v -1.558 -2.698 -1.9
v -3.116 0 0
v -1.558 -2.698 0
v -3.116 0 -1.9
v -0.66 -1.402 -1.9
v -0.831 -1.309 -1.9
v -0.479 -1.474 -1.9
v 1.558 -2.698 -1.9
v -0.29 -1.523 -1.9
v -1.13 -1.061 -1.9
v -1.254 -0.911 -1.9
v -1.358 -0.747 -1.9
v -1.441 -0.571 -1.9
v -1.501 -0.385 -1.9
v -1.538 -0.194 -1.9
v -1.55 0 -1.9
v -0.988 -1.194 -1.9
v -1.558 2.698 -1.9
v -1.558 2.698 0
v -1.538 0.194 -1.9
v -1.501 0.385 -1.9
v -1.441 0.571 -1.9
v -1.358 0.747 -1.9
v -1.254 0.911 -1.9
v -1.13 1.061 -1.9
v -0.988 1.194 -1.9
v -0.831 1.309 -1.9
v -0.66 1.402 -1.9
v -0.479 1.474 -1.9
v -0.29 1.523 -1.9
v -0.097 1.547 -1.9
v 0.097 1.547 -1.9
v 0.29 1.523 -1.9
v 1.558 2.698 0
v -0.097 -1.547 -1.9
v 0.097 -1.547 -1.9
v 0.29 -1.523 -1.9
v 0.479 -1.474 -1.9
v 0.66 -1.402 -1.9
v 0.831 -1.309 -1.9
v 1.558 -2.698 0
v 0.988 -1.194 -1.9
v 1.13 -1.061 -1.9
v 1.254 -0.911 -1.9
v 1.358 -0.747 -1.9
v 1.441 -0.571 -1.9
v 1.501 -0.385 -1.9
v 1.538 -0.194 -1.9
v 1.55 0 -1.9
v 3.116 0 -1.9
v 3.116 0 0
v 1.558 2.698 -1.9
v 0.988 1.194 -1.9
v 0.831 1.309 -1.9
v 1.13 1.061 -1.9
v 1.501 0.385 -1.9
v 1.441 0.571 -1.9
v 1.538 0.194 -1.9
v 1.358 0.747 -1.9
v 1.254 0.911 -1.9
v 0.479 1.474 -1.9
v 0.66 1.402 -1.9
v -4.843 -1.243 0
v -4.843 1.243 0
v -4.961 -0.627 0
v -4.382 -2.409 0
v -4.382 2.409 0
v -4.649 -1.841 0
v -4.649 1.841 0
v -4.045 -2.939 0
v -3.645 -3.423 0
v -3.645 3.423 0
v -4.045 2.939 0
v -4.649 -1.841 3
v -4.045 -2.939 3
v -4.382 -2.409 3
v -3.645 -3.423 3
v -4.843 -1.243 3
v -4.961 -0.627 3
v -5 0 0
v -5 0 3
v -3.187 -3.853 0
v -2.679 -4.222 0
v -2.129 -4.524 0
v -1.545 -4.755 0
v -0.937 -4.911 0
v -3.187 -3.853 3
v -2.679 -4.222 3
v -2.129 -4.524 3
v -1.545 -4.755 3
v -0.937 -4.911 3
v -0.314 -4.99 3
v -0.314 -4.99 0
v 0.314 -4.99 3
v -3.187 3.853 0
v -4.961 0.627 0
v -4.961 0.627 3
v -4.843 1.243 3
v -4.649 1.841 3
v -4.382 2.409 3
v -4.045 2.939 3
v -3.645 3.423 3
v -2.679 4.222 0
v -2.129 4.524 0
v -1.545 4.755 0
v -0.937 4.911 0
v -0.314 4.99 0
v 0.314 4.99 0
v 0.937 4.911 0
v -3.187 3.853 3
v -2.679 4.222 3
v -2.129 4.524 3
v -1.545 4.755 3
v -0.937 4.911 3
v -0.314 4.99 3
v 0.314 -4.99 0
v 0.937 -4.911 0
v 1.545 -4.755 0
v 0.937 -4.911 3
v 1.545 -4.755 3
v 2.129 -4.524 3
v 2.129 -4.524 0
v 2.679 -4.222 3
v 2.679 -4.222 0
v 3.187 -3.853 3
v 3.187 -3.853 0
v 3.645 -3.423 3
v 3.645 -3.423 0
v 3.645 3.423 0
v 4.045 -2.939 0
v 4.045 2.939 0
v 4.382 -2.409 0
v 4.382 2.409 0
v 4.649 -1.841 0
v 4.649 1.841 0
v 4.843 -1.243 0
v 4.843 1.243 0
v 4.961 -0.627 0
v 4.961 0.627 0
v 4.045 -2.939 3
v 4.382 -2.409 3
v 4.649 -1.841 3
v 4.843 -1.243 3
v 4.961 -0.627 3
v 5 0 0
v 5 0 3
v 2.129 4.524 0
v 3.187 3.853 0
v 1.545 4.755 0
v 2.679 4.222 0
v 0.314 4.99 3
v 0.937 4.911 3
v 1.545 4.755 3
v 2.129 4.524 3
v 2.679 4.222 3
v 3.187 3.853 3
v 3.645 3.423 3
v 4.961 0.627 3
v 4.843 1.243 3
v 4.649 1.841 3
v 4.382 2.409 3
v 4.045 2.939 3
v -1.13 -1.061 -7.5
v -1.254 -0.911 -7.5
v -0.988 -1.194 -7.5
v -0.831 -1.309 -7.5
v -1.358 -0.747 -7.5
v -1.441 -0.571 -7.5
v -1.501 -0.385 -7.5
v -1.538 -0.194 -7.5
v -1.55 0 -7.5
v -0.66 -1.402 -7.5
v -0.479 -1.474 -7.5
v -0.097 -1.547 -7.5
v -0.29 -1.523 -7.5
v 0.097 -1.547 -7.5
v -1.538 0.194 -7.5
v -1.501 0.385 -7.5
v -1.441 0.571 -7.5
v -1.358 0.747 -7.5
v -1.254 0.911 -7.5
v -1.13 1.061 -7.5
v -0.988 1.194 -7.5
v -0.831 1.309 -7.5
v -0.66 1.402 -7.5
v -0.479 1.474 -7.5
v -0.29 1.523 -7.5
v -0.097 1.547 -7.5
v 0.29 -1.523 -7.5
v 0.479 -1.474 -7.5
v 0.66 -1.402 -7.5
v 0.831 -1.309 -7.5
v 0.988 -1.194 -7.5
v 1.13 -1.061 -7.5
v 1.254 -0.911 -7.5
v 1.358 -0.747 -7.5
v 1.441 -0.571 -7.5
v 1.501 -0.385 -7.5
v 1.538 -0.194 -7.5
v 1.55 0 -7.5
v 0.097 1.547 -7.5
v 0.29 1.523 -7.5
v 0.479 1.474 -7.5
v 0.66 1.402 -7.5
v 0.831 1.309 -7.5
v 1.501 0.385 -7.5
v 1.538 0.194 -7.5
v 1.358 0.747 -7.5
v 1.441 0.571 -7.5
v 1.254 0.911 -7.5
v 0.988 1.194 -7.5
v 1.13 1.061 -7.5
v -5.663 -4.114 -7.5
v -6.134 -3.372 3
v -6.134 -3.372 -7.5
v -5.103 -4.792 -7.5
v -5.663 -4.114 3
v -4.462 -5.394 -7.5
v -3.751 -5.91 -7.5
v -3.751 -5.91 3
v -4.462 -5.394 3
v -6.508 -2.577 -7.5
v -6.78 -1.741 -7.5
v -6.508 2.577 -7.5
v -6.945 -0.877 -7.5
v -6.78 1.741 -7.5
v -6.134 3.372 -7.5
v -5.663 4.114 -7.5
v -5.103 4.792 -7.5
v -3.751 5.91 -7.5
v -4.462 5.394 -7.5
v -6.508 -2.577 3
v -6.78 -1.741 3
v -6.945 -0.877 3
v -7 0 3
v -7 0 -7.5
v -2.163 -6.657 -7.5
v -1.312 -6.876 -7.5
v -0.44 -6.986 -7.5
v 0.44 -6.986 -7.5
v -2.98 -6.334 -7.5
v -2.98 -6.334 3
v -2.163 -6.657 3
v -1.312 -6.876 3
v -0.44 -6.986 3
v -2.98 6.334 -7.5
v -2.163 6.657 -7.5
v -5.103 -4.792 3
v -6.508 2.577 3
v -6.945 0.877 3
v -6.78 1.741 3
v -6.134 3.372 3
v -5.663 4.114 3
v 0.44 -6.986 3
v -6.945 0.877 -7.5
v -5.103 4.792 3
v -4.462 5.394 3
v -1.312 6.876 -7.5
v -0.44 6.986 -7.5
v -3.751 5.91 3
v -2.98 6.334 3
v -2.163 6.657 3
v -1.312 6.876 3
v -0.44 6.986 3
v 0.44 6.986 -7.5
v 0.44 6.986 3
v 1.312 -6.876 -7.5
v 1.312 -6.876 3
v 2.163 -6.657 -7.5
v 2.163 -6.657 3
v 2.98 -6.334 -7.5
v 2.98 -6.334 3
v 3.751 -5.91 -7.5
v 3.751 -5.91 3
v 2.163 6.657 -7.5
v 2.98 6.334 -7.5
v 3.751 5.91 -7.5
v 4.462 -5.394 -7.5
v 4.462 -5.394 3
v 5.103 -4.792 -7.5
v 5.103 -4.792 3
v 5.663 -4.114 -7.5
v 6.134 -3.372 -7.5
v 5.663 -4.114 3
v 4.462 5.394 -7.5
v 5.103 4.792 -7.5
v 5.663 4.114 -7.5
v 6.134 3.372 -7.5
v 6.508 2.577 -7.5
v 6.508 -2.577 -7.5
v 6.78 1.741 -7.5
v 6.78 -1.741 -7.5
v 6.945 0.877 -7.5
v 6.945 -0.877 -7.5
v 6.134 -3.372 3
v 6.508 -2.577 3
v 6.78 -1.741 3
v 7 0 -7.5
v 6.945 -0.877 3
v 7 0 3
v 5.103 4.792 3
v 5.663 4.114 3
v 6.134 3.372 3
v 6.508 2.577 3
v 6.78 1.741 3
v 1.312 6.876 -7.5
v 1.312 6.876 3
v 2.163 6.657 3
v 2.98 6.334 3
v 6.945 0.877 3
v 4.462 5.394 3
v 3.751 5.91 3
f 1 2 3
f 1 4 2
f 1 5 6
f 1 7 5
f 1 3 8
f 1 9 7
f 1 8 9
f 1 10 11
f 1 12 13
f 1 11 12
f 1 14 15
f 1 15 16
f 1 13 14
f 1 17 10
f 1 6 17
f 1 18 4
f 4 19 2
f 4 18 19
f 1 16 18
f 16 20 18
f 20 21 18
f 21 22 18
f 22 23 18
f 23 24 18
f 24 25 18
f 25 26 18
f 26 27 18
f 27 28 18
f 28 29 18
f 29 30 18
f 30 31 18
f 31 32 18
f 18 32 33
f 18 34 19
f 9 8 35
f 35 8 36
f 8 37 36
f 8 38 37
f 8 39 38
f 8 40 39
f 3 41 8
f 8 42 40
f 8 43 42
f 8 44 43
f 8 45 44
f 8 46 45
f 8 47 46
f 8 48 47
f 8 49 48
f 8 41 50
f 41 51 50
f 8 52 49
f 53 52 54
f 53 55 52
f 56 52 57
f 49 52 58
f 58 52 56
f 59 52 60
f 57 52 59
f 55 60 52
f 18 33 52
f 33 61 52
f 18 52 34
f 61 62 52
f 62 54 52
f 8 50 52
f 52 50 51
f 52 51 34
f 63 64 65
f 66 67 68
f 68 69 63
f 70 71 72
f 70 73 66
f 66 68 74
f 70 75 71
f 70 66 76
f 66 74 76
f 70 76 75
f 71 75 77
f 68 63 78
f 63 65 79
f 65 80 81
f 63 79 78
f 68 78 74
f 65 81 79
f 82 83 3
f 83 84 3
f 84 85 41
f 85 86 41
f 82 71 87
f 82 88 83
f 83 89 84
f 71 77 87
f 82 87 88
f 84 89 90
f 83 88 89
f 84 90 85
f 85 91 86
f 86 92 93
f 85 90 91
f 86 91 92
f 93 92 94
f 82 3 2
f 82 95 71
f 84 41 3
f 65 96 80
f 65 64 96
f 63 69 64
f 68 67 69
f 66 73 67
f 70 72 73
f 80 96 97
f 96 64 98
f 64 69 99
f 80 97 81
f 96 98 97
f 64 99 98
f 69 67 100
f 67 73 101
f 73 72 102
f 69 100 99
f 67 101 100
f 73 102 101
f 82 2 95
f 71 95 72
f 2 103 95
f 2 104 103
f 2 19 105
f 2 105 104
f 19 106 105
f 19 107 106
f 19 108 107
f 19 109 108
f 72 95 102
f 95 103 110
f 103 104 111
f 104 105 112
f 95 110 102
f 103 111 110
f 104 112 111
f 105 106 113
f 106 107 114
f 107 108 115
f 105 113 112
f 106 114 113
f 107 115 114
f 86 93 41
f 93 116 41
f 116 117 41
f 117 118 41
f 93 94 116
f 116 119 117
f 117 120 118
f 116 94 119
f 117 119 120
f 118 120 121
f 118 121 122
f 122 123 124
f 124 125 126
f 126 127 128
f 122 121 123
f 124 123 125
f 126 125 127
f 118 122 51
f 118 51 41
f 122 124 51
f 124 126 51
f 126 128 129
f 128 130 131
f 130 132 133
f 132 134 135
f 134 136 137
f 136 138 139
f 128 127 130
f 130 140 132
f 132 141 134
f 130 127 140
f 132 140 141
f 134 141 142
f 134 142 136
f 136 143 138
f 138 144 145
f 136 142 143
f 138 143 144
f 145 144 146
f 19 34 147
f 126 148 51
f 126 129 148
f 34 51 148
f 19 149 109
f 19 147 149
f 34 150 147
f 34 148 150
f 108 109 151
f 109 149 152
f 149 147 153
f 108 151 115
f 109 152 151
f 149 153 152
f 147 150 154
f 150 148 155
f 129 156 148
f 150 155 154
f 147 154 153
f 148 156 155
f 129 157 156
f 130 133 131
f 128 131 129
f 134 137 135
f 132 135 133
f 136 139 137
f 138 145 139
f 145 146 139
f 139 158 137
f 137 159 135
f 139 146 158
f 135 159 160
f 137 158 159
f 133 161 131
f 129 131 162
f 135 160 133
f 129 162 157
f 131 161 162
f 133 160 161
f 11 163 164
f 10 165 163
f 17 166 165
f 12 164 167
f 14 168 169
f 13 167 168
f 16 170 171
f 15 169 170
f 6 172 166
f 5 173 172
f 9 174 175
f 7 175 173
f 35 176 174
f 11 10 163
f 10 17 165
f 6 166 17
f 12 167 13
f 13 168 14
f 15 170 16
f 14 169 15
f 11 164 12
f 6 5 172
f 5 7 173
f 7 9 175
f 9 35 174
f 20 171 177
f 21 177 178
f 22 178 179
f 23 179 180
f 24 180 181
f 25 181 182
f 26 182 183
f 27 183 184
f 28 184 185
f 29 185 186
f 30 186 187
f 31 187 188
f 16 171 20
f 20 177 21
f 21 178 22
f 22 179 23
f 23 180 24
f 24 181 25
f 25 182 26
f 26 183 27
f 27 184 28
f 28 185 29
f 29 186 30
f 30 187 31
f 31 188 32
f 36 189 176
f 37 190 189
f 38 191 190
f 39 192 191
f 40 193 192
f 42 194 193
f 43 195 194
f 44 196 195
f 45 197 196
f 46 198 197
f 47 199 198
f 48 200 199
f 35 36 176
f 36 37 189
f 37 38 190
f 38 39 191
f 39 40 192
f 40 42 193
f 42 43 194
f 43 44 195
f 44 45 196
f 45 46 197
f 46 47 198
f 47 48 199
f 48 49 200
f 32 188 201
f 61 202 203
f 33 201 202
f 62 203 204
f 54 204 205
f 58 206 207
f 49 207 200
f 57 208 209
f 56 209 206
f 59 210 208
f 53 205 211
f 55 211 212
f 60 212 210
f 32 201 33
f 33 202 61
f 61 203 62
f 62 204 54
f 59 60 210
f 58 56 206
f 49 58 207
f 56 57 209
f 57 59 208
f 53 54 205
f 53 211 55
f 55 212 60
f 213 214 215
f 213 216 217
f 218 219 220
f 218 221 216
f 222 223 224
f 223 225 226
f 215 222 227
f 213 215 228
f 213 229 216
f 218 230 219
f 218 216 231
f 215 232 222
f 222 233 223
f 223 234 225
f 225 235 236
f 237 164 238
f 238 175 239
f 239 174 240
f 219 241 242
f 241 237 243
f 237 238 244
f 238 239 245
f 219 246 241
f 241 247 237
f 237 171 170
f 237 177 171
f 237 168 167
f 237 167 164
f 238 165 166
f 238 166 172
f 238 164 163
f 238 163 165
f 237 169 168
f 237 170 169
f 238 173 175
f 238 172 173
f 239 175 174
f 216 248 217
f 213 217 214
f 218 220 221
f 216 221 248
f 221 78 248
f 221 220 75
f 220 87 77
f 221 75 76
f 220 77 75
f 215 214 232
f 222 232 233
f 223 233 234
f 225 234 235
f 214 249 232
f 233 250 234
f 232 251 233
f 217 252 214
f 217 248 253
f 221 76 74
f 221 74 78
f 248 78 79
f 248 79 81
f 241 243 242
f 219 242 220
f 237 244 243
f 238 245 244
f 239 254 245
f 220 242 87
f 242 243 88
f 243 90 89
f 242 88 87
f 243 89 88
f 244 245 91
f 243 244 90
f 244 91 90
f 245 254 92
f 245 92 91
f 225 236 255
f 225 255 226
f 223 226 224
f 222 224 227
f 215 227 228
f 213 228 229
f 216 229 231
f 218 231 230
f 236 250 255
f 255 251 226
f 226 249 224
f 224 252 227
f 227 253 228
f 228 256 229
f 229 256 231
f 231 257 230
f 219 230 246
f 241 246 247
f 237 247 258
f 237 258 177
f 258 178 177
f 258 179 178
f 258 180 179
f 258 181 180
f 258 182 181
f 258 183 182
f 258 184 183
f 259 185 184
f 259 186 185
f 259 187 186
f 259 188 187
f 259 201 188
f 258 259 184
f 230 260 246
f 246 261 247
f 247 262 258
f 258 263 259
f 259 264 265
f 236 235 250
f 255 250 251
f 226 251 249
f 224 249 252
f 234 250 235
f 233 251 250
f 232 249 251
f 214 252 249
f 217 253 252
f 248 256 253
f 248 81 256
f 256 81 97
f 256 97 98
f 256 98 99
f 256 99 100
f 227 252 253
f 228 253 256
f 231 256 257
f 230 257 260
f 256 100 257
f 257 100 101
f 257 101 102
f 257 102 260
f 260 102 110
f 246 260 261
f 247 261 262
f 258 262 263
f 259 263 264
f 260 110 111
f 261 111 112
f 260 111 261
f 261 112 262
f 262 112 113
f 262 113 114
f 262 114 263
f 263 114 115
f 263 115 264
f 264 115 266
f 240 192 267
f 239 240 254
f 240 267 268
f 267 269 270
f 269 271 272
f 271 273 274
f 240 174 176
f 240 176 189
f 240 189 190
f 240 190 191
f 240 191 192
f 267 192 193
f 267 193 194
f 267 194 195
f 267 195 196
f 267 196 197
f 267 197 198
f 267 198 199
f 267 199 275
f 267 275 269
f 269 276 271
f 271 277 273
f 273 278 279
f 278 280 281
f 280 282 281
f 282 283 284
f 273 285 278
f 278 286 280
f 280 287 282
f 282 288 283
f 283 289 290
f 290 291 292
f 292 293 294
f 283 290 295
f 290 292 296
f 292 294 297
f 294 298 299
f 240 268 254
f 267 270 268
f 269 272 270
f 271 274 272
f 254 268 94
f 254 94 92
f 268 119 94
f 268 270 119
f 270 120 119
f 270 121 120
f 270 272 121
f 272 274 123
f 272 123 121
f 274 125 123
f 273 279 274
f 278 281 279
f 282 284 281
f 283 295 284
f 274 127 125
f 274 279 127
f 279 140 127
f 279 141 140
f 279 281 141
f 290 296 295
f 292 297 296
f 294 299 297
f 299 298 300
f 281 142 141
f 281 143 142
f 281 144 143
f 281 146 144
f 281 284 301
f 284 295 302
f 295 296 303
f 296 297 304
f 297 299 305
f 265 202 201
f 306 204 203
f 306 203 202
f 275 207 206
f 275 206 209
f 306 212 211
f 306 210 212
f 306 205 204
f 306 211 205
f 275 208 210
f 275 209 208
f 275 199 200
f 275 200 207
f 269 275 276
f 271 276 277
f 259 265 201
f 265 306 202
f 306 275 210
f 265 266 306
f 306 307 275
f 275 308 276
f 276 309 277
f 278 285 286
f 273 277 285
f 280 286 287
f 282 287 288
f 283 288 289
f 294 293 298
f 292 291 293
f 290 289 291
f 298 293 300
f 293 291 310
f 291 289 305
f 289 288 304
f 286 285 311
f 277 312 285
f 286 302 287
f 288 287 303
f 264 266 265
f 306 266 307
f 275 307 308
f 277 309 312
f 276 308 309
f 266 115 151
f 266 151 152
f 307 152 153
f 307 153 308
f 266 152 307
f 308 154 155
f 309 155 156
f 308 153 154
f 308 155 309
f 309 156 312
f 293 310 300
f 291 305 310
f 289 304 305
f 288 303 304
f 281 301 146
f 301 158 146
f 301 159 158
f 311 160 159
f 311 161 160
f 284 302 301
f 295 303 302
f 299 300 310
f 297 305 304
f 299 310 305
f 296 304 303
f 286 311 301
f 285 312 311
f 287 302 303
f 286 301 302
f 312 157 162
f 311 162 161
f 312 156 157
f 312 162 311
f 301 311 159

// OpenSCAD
$fn = 50;


difference() {
	union() {
		translate(v = [0, 0, -7.5000000000]) {
			cylinder(h = 10.5000000000, r = 7.0000000000);
		}
	}
	union() {
		translate(v = [0, 0, 0]) {
			rotate(a = [0, 0, 0]) {
				difference() {
					union() {
						translate(v = [0, 0, -1.9000000000]) {
							linear_extrude(height = 1.9000000000) {
								polygon(points = [[3.1158000000, 0.0000000000], [1.5579000000, 2.6983619531], [-1.5579000000, 2.6983619531], [-3.1158000000, 0.0000000000], [-1.5579000000, -2.6983619531], [1.5579000000, -2.6983619531]]);
							}
						}
					}
					union();
				}
			}
		}
		#cylinder(h = 3, r = 5.0000000000);
		#translate(v = [0, 0, -100.0000000000]) {
			cylinder(h = 200, r = 1.5500000000);
		}
	}
}
